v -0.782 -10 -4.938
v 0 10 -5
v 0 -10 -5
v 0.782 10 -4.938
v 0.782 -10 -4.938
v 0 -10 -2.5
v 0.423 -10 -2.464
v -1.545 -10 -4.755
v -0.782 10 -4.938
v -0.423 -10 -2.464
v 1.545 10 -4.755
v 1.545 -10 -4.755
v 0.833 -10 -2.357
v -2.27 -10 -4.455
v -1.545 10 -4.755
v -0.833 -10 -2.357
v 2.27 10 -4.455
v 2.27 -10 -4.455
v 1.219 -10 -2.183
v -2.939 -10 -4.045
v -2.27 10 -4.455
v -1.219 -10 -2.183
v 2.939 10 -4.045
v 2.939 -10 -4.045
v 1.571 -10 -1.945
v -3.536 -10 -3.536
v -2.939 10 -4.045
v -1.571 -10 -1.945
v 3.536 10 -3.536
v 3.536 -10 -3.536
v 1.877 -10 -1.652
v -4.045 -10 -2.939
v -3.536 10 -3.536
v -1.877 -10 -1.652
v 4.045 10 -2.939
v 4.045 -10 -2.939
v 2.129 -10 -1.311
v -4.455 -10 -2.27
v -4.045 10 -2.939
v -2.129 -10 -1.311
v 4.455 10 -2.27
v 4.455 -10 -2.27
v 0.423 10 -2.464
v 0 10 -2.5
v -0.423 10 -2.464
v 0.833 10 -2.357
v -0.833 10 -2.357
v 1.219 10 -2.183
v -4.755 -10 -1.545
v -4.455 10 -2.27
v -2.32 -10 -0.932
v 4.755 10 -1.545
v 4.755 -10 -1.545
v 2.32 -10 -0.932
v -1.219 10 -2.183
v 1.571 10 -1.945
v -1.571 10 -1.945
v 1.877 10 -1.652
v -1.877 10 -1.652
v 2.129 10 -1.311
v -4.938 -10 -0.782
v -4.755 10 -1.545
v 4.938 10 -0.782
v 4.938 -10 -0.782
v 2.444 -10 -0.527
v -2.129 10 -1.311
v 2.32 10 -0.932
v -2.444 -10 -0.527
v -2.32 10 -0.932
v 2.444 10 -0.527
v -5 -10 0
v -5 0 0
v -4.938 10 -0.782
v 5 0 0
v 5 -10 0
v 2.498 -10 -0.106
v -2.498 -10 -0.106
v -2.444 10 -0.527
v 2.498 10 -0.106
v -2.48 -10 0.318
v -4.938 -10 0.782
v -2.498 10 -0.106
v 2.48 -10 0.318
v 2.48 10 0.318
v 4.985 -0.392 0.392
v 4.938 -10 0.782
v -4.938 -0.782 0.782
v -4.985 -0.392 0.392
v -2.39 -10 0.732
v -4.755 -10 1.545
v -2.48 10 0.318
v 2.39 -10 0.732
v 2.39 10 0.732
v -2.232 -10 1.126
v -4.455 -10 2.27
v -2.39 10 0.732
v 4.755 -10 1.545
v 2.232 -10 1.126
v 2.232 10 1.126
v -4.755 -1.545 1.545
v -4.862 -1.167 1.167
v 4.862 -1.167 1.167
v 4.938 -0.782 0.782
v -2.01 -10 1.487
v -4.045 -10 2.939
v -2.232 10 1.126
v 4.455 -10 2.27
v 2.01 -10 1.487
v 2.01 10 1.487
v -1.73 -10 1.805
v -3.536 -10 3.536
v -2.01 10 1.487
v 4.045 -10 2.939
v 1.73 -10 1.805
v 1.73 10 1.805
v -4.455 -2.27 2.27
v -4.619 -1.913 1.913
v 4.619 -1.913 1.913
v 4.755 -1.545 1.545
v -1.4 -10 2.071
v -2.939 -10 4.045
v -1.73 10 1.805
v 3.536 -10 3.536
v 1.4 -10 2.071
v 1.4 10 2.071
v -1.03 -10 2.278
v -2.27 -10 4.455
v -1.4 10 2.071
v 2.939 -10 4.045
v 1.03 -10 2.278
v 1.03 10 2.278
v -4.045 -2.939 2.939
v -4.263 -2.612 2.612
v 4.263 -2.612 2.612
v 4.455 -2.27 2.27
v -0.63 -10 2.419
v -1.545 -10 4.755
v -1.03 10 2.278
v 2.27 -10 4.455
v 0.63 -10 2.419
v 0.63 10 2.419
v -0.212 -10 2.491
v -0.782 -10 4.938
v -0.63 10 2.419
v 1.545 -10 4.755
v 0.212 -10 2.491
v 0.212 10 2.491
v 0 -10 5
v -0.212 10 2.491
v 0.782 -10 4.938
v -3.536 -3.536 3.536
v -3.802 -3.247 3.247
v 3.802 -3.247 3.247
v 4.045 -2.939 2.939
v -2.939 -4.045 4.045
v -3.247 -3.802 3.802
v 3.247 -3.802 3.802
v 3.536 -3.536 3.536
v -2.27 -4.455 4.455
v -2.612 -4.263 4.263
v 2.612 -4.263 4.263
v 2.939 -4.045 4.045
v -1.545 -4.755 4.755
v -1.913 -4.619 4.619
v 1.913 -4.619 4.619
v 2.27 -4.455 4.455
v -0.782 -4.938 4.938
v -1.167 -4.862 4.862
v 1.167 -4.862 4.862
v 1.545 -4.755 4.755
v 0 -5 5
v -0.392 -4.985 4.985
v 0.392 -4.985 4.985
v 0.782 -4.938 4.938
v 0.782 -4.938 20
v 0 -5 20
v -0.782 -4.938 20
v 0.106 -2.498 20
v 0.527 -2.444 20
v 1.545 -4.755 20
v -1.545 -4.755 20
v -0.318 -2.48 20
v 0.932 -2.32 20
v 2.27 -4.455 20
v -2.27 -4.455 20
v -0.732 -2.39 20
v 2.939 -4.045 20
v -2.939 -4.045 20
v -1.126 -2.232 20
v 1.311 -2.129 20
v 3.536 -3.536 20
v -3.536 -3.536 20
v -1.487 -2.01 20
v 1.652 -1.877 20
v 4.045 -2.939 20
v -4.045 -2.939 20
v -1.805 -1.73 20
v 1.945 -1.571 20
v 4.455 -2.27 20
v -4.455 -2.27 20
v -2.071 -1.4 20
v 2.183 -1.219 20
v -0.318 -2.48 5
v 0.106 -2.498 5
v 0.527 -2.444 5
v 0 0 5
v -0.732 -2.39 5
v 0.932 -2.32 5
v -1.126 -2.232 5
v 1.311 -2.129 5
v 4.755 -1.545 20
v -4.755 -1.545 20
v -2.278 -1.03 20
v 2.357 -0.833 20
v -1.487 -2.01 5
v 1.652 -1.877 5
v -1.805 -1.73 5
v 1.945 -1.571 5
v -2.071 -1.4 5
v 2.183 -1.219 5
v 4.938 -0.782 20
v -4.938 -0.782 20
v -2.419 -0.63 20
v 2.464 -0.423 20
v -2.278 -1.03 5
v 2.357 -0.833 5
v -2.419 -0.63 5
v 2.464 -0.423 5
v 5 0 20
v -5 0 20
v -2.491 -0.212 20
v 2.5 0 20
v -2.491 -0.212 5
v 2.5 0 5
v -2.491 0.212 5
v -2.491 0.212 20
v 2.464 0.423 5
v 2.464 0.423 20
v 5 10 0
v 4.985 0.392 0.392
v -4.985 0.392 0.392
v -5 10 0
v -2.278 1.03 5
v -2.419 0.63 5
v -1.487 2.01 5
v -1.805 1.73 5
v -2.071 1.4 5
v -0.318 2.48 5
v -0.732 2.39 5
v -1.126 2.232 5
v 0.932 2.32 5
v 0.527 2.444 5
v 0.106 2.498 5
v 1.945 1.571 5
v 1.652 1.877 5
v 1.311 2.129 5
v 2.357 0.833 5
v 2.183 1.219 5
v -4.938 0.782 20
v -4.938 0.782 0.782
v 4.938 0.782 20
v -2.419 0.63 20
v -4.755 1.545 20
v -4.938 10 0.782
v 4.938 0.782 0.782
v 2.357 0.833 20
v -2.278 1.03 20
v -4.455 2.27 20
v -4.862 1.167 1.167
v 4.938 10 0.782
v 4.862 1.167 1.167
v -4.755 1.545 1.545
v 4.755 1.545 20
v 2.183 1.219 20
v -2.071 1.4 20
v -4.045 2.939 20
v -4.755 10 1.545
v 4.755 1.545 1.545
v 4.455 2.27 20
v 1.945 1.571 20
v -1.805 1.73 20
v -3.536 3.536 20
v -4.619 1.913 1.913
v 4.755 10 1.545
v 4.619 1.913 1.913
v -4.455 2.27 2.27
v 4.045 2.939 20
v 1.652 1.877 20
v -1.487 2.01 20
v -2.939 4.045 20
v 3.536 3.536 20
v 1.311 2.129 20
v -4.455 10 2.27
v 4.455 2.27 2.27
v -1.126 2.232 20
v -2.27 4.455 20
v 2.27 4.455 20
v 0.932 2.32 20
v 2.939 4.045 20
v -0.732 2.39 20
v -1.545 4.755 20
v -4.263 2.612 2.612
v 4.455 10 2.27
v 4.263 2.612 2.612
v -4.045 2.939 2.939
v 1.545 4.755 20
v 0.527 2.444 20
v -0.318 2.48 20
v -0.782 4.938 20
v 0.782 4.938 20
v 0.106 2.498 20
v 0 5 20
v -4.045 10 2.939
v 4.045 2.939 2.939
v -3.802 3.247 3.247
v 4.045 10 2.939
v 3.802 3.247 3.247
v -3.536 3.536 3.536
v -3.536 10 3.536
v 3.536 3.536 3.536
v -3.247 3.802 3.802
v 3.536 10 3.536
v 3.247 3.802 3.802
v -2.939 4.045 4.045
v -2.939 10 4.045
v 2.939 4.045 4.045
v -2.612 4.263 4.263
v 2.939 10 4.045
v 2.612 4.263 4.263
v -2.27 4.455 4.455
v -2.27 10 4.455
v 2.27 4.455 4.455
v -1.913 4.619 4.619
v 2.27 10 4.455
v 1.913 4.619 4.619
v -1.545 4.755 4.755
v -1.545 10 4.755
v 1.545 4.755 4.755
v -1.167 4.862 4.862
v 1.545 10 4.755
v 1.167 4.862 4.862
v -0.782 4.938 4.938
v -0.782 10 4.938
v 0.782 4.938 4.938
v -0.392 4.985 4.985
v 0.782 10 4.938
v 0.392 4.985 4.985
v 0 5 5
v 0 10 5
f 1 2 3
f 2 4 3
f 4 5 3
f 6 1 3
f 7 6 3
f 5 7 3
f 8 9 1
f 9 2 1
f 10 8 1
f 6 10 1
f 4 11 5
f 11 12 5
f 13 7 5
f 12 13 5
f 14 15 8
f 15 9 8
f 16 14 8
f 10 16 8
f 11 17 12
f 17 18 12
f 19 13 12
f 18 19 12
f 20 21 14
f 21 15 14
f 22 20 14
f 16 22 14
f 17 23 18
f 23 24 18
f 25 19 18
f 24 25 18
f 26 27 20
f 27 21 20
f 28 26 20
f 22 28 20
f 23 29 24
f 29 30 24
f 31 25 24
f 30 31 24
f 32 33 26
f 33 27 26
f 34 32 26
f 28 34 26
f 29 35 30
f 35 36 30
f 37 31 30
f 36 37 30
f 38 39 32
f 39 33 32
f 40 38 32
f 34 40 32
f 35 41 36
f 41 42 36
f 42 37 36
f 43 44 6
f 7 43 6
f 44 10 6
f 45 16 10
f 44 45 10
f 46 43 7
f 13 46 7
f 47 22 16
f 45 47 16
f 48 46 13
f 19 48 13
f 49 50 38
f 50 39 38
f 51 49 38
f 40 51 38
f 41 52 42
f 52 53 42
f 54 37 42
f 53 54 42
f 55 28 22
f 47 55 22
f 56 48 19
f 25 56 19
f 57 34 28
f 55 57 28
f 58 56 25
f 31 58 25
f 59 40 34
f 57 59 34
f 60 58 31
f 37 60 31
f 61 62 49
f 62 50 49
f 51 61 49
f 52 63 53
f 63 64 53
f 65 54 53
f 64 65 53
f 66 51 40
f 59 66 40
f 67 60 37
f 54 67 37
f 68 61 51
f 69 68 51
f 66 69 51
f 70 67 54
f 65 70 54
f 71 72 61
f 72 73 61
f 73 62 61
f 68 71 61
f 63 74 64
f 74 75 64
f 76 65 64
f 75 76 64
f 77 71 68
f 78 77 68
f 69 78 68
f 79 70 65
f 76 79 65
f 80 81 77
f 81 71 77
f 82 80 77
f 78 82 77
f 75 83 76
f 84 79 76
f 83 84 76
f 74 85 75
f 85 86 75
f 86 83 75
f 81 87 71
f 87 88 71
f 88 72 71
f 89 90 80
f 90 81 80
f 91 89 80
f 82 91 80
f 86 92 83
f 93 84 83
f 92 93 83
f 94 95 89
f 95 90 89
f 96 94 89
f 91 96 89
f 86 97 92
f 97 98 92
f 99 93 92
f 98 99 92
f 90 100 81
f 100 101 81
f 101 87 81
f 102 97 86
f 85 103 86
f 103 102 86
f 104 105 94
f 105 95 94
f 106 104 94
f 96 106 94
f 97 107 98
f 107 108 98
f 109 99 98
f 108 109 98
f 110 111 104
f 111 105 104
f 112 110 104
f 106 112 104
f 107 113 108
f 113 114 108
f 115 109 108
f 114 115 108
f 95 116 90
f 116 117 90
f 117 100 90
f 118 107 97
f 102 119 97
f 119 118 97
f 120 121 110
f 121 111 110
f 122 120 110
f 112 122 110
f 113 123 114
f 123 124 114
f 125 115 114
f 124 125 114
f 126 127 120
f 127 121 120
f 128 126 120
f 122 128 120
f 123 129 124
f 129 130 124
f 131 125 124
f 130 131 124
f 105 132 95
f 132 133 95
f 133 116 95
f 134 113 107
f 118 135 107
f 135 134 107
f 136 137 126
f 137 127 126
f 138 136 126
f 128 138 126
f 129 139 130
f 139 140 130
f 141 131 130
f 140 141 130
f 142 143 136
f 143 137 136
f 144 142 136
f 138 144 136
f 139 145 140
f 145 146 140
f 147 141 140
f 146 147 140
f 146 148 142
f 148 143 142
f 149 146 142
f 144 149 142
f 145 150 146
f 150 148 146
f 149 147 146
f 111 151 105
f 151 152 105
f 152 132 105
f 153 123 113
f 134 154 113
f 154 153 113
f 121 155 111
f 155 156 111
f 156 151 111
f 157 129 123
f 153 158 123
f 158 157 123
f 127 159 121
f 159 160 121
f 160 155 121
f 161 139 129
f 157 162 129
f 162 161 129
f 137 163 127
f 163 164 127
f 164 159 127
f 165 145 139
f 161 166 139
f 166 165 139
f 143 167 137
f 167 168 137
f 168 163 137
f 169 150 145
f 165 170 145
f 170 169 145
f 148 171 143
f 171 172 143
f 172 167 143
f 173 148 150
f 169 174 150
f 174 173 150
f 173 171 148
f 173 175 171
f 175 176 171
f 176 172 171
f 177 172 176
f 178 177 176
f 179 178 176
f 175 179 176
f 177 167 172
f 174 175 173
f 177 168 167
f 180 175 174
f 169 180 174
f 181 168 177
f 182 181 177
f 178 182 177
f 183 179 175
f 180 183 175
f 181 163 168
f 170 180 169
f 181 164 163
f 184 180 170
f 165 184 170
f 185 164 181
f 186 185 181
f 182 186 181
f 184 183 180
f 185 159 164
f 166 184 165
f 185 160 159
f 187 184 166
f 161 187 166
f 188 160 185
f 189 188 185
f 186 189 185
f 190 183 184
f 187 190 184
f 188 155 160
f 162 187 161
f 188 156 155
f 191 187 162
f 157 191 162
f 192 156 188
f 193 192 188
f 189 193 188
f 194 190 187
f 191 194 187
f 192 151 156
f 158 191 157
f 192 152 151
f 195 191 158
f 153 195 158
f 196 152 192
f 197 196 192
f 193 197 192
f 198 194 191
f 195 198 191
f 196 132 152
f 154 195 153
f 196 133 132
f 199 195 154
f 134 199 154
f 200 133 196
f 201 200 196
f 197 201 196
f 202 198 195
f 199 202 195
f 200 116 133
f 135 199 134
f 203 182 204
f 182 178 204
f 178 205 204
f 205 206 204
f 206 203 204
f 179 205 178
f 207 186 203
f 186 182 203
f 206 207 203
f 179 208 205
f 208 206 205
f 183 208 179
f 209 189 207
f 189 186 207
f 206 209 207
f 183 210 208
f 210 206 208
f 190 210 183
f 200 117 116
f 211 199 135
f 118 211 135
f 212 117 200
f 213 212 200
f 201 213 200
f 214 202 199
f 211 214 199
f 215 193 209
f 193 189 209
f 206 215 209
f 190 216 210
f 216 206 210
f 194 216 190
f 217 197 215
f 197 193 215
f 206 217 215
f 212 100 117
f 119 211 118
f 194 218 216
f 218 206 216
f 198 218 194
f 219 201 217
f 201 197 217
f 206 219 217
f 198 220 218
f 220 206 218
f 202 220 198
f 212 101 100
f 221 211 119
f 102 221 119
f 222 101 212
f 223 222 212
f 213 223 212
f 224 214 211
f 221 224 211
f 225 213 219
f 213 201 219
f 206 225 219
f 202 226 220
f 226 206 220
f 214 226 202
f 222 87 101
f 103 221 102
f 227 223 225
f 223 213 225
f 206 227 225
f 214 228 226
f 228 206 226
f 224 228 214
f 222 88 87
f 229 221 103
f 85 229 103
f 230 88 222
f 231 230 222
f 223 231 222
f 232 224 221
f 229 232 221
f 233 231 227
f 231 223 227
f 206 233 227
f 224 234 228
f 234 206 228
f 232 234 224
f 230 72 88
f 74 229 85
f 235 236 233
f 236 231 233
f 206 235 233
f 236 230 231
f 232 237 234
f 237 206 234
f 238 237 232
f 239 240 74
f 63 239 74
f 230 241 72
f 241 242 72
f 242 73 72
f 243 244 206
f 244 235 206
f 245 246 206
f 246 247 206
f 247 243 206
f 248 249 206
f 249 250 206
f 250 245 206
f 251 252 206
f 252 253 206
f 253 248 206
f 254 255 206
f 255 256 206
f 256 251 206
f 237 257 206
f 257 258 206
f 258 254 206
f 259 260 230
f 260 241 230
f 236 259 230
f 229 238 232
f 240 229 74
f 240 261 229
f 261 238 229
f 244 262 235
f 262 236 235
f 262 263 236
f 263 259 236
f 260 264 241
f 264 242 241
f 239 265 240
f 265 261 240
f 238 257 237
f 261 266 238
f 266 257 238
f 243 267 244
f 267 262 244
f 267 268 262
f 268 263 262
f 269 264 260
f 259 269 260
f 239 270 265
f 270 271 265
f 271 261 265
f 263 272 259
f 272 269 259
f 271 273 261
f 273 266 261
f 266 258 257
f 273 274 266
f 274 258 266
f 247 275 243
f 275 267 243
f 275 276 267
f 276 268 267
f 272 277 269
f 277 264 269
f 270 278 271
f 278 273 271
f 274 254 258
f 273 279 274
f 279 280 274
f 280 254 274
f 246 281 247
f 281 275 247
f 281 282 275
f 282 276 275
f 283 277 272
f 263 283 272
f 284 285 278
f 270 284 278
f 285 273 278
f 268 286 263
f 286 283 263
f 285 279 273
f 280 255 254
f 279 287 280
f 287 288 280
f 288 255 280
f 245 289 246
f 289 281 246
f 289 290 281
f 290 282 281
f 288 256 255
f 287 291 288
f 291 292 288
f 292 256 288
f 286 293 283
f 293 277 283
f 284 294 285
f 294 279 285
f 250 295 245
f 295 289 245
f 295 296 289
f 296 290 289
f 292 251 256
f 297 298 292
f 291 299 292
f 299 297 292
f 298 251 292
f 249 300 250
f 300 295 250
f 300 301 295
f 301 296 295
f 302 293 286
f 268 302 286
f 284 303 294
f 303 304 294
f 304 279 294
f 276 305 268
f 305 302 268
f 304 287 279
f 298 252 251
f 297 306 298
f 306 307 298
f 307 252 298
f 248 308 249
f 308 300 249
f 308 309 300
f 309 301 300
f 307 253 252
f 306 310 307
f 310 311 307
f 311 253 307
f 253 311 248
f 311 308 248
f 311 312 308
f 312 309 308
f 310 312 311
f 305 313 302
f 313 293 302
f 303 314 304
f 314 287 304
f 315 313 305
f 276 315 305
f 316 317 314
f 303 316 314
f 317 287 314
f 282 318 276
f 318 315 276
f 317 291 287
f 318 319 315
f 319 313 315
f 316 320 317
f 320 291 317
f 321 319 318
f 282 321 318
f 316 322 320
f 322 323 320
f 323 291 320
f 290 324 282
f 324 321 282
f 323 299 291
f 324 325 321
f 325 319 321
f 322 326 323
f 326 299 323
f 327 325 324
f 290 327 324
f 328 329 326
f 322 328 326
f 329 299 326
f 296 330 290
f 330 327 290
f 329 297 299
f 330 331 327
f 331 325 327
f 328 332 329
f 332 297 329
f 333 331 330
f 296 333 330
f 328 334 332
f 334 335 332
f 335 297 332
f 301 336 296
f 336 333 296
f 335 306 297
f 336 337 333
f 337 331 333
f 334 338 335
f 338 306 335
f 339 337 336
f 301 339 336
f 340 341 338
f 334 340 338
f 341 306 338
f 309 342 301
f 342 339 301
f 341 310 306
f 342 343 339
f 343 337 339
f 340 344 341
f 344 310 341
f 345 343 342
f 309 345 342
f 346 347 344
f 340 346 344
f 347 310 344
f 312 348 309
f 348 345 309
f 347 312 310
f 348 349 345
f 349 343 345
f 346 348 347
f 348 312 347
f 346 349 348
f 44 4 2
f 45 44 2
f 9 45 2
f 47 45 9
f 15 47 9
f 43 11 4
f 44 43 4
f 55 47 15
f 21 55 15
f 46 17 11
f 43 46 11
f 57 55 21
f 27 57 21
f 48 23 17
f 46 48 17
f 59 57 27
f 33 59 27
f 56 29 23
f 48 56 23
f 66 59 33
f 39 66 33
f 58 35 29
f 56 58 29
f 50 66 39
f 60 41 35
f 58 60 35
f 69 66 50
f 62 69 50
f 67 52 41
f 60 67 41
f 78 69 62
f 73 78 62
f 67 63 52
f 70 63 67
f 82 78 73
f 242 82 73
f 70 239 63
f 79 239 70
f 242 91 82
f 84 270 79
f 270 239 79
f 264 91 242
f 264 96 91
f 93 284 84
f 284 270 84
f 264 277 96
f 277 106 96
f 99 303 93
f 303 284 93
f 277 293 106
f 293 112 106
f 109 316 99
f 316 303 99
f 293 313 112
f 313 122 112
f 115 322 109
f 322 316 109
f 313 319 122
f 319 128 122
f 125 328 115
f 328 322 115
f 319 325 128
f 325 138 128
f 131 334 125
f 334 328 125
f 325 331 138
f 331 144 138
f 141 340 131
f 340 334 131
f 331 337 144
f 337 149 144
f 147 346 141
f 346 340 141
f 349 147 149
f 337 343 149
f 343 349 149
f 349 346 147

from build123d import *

# Parameters (mm, degrees)
SKETCH_1_R          = 5
EXTRUDE_1_DEPTH     = 10
SKETCH_2_R          = 5
EXTRUDE_2_DEPTH     = 20
SKETCH_3_R          = 2.5
CUT_EXTRUDE_1_DEPTH = 15
SKETCH_4_R          = 2.5
CUT_EXTRUDE_2_DEPTH = 29.722813233


with BuildPart() as part:
    # 草圖1 → 填料-伸長1 (new, symmetric)
    with BuildSketch(Plane(origin=(0, 0, 0), x_dir=(1, 0, 0), z_dir=(0, 1, 0))):
        with Locations(Location((0, 0, 0), (0, 0, 270))):
            Circle(SKETCH_1_R)
    extrude(amount=EXTRUDE_1_DEPTH, both=True)

    # 草圖2 → 填料-伸長2 (add)
    with BuildSketch(Plane.XY):
        Circle(SKETCH_2_R)
    extrude(amount=EXTRUDE_2_DEPTH)

    # 草圖3 → 除料-伸長1 (cut)
    with BuildSketch(Plane.XY.offset(20)):
        Circle(SKETCH_3_R)
    extrude(amount=-CUT_EXTRUDE_1_DEPTH, mode=Mode.SUBTRACT)

    # 草圖4 → 除料-伸長2 (cut, through all)
    with BuildSketch(Plane.XZ.offset(10)):
        with Locations(Location((0, 0, 0), (0, 0, 270))):
            Circle(SKETCH_4_R)
    extrude(amount=-CUT_EXTRUDE_2_DEPTH, mode=Mode.SUBTRACT)


solid = part.part
